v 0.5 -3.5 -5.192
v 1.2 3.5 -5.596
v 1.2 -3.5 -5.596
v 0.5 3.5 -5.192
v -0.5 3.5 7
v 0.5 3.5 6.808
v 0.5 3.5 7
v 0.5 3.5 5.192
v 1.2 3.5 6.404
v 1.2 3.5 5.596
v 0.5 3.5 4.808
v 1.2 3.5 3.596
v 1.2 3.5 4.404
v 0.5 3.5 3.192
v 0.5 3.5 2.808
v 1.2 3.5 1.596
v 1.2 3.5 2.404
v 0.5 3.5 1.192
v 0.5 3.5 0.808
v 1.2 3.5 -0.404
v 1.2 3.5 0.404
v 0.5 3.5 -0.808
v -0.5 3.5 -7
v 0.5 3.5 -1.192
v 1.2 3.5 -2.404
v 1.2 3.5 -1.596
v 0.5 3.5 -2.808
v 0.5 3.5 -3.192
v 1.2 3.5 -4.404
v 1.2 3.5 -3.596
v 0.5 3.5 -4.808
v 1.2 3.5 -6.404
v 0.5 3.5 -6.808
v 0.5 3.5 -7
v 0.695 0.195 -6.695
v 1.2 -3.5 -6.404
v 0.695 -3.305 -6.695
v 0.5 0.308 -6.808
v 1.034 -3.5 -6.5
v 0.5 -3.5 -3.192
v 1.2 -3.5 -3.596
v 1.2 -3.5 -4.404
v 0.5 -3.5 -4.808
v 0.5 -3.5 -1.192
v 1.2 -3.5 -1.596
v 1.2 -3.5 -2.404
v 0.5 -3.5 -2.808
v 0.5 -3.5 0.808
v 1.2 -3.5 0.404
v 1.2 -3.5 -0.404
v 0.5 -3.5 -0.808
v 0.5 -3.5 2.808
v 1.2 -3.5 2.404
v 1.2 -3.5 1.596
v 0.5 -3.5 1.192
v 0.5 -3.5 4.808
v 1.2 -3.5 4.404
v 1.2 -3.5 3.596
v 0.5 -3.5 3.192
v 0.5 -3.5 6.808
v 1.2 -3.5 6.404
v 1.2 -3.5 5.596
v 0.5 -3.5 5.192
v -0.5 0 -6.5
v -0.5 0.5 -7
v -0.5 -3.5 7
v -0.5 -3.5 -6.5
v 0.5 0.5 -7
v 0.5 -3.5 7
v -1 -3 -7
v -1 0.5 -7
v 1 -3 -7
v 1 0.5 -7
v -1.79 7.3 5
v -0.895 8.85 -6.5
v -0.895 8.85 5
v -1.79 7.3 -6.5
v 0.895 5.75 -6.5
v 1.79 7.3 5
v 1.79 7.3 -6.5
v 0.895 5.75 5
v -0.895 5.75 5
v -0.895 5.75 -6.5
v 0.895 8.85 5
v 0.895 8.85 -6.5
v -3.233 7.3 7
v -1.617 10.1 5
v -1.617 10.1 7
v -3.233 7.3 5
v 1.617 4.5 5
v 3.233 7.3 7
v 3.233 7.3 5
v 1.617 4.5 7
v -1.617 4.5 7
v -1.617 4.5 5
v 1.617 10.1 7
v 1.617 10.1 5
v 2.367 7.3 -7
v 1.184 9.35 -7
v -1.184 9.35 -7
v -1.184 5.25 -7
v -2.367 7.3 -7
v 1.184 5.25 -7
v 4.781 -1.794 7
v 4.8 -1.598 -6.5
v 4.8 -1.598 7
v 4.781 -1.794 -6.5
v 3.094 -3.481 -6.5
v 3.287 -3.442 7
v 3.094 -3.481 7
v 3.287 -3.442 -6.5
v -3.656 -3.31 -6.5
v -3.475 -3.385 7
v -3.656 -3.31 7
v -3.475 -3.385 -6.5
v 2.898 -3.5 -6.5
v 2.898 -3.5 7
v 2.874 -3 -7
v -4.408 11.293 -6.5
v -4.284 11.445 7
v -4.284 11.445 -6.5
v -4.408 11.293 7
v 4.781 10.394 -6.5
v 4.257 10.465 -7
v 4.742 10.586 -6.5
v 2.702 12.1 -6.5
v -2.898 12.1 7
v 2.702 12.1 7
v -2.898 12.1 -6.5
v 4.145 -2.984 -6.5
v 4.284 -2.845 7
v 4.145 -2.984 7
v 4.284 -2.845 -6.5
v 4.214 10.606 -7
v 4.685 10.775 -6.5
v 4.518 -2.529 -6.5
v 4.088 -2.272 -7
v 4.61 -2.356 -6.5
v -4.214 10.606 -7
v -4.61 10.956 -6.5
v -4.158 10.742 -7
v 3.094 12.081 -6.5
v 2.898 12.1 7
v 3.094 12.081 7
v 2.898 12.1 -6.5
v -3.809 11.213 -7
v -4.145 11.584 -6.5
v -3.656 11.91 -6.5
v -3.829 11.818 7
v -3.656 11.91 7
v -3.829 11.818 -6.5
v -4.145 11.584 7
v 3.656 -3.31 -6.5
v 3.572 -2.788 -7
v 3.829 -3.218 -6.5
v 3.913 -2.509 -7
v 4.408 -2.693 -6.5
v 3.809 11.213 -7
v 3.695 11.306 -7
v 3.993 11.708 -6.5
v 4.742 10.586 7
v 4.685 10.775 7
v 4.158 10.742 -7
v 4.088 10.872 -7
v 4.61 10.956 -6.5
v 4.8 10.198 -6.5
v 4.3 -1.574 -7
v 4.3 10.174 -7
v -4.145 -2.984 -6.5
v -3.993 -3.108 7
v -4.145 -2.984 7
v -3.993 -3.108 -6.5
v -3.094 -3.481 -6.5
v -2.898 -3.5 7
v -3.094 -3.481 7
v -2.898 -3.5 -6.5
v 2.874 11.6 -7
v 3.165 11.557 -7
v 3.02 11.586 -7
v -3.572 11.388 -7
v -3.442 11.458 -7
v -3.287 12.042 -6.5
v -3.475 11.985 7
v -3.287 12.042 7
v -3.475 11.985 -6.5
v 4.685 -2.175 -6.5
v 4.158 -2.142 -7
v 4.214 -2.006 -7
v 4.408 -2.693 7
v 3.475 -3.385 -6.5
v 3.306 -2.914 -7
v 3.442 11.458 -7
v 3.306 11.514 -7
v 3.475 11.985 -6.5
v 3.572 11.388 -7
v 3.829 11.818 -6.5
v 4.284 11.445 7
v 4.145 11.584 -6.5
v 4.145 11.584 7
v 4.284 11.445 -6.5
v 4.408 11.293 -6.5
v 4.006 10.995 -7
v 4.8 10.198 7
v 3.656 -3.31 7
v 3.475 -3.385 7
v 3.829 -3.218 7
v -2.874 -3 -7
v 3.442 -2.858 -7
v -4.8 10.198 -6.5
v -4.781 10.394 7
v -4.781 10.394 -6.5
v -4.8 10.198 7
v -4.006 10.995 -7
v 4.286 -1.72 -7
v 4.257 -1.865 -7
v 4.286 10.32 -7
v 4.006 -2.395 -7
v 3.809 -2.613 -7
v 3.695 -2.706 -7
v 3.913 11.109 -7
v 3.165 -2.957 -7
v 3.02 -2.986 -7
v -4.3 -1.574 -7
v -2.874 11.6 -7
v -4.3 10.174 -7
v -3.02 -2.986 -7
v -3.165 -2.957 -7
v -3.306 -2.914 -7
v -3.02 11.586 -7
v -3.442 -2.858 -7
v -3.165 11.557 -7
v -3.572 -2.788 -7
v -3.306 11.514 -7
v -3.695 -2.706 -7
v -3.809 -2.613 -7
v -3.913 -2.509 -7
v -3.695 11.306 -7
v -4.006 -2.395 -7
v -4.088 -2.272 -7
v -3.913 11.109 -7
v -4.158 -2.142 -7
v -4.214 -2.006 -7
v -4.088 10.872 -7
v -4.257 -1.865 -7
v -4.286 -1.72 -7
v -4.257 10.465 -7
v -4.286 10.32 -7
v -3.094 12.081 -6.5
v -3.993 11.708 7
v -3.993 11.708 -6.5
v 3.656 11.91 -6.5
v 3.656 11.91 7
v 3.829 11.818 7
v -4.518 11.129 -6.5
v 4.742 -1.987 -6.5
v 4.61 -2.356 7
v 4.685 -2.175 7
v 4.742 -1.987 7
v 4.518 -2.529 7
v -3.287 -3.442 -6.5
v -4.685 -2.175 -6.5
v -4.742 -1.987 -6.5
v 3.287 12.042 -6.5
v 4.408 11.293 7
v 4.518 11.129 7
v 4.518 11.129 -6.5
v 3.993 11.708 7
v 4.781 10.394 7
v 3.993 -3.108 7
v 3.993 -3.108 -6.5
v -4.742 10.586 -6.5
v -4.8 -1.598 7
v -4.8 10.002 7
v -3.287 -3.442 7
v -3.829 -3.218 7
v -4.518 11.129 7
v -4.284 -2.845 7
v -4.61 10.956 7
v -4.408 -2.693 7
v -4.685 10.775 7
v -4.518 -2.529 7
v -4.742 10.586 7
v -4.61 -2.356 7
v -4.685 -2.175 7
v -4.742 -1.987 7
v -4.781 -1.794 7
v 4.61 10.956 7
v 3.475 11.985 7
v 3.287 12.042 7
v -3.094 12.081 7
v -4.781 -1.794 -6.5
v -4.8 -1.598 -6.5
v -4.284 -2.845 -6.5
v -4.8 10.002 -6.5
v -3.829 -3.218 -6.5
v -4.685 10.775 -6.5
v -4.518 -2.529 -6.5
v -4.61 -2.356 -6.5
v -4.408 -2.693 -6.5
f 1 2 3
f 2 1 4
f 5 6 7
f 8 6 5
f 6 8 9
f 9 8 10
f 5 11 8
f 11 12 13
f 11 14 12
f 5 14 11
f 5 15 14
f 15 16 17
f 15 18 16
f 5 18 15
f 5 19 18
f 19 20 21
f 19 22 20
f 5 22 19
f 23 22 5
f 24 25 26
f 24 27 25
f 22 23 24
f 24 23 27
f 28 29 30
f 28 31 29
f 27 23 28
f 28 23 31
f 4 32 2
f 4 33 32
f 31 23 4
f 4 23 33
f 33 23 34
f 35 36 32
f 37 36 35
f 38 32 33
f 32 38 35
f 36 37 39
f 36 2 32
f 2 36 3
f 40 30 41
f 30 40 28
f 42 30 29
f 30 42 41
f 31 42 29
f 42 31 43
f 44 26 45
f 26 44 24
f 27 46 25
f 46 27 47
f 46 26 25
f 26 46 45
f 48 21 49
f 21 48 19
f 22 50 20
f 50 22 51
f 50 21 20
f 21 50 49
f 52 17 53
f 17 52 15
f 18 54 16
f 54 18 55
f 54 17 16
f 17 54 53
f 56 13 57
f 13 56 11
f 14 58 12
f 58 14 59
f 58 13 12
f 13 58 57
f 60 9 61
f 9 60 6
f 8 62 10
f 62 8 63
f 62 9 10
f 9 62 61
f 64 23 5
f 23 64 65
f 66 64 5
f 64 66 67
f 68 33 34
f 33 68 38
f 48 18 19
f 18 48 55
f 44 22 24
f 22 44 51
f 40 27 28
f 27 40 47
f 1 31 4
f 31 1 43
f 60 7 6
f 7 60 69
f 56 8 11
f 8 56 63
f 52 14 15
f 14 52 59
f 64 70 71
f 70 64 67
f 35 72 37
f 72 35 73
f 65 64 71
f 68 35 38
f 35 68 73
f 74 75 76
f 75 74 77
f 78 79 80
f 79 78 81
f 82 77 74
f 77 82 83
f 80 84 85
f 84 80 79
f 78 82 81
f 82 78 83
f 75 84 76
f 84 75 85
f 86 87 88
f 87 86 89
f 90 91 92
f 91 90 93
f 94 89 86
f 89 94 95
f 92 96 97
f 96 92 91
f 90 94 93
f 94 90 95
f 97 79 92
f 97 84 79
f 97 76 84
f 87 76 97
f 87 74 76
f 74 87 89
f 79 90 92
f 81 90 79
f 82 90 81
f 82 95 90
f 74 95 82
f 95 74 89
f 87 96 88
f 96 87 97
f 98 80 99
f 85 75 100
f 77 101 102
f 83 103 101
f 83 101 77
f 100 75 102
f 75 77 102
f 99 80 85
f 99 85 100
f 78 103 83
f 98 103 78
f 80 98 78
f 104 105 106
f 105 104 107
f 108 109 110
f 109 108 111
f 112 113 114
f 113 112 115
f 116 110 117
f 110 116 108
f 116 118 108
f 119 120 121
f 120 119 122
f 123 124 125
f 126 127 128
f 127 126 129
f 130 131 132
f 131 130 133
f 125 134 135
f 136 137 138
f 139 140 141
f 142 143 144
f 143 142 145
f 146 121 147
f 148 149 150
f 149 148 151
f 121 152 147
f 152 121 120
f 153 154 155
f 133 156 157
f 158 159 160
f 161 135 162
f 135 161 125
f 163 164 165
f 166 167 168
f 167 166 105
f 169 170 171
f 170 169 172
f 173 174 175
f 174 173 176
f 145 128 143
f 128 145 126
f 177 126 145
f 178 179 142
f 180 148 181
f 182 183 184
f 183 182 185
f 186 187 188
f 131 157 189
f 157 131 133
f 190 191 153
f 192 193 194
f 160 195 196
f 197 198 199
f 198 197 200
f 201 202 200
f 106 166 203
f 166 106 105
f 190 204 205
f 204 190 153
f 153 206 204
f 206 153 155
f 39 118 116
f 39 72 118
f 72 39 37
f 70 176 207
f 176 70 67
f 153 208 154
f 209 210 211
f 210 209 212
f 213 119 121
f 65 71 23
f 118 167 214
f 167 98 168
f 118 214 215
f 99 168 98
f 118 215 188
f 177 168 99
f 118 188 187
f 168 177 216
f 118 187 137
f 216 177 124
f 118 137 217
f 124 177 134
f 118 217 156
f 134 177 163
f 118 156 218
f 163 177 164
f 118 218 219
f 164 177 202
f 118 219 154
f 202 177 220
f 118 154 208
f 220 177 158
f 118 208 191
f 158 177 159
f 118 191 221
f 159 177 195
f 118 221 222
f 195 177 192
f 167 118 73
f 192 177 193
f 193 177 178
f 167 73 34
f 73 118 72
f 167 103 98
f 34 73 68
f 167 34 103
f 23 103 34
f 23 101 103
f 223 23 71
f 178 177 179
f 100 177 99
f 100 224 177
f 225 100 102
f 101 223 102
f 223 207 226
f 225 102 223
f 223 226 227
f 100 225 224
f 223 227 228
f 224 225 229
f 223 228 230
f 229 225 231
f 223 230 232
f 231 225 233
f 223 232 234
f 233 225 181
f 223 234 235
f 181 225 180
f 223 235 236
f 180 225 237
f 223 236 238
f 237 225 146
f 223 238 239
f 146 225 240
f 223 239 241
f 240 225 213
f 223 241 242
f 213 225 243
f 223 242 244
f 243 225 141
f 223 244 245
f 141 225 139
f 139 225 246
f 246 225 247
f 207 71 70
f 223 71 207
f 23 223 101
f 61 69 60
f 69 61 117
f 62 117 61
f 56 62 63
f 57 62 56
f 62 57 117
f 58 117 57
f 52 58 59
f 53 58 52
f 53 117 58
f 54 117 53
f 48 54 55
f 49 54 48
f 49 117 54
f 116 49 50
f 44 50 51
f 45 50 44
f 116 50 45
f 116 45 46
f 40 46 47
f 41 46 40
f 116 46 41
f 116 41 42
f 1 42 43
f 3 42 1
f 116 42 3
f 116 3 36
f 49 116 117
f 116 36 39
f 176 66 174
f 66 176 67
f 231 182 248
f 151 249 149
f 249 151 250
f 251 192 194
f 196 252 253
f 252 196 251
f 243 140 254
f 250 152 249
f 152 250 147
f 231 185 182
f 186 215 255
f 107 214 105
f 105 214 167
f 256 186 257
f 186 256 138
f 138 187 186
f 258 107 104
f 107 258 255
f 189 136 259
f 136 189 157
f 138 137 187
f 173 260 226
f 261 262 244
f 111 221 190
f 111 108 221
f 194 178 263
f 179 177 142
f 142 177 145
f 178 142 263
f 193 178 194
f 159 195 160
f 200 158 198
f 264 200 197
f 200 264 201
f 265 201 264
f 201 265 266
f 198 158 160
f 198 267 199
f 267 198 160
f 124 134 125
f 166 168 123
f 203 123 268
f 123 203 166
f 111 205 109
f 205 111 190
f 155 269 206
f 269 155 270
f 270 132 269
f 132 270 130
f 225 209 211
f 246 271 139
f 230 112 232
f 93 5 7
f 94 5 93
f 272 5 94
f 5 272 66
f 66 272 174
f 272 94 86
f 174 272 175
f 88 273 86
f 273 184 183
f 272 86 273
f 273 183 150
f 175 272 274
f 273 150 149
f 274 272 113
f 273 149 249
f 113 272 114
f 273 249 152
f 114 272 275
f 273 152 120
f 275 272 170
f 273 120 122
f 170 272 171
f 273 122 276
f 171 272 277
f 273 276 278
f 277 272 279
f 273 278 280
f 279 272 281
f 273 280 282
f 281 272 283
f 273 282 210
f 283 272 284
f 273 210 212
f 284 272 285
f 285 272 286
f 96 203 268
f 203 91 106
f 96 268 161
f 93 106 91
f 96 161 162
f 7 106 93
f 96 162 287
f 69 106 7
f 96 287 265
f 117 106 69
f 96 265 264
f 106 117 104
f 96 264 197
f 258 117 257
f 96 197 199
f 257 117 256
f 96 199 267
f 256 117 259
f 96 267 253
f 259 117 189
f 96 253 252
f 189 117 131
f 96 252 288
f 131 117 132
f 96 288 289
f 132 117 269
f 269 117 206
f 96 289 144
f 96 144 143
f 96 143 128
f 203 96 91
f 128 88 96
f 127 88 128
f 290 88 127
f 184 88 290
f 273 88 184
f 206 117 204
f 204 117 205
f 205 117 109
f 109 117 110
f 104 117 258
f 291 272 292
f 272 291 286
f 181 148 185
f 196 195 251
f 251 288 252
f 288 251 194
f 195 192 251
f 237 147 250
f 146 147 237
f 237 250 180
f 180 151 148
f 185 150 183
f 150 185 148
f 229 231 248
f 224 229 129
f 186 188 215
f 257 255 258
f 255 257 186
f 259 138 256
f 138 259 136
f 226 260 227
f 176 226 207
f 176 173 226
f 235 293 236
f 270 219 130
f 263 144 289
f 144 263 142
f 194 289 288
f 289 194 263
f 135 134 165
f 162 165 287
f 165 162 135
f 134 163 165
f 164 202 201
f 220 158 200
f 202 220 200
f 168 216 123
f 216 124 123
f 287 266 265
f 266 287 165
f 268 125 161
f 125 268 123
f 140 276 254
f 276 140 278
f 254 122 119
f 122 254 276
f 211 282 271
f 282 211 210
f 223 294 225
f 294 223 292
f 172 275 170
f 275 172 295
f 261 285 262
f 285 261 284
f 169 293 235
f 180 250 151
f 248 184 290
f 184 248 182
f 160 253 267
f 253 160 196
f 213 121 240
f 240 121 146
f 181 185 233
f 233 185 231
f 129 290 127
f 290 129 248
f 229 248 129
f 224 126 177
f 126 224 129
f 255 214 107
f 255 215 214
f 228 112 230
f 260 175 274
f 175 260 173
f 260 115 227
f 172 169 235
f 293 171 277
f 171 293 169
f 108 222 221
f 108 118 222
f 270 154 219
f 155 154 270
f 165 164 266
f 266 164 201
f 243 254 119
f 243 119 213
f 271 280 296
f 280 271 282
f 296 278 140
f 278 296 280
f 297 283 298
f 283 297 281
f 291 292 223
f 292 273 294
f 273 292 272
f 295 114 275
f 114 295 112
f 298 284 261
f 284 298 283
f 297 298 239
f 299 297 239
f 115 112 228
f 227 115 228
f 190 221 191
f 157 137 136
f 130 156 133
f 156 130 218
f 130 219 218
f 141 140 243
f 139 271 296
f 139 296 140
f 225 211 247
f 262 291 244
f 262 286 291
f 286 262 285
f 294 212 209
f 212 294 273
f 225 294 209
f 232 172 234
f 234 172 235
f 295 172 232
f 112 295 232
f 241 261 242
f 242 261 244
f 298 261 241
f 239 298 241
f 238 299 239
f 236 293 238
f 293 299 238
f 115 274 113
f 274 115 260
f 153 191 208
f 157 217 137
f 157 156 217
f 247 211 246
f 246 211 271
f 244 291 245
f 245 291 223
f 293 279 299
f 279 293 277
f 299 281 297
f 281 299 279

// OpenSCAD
// file: util.scad
function accurate_diam(diam,sides) = 1 / cos(180/sides) / 2 * diam;

module hole(diam,len,sides=8) {
  rotate([0,0,180/sides]) {
    cylinder(r=accurate_diam(diam,sides),h=len,center=true,$fn=sides);
  }
}

module debug_axes() {
  color("red") {
    translate([50,0,0]) cube([100,.2,.2],center=true);
    translate([0,50,0]) cube([.2,100,.2],center=true);
    translate([0,0,50]) cube([.2,.2,100],center=true);
  }
}
// main file
include <config.scad>;
//include <positions.scad>;
//include <boxcutter.scad>;
use <util.scad>;

belt_tooth_pitch   = 2;
num_teeth_to_clamp = 7;
belt_clamp_depth   = belt_width + m3_nut_diam + wall_thickness*1.5 + 1;
belt_clamp_width   = m3_nut_diam + wall_thickness*2;
belt_clamp_height  = num_teeth_to_clamp*belt_tooth_pitch;

dist_from_belt_center_to_tensioner_screw = belt_width/2 + 0.5 + wall_thickness/2 + m3_nut_diam/2;

echo("BELT CLAMP DIM:", belt_clamp_width, belt_clamp_depth,belt_clamp_height);

/*
gt2_overall_thickness   = 1.38;
gt2_tooth_depth         = 0.75;
gt2_non_tooth_thickness = gt2_overall_thickness - gt2_tooth_depth;
gt2_center_from_flat    = 0.254;
*/

module vertical_belt_clamp() {
  rounded_diam = 4;
  module body() {
    hull() {
      translate([0,-0.5-belt_width/2+belt_clamp_depth/2,0]) {
        for(x=[left,right]) {
          for(y=[front,rear]) {
            translate([(belt_clamp_width/2-rounded_diam/2)*x,(belt_clamp_depth/2-rounded_diam/2)*y,0.25]) {
              hole(rounded_diam,belt_clamp_height-0.5,resolution);
            }
            translate([(belt_clamp_width/2-rounded_diam/2)*x,(belt_clamp_depth/2-rounded_diam/2)*y,0]) {
              hole(rounded_diam-1,belt_clamp_height,resolution);
            }
          }
        }
      }
    }
  }

  module holes() {
    tooth_diam = 1.4;
    // belt teeth
    translate([0,0,0]) {
      % cube([belt_thickness,belt_width,belt_clamp_height+2],center=true);
      translate([0,-belt_width/2+0.5,0]) {
        cube([1,belt_width*2,40],center=true);

        for(i=[0:num_teeth_to_clamp]) {
          translate([belt_thickness/2,0,-belt_clamp_height/2+belt_tooth_pitch/2+belt_tooth_pitch*i]) {
            rotate([90,0,0]) {
              rotate([0,0,0]) {
                hole(tooth_diam,belt_width*2,6);
              }
            }
          }
        }
      }

      for(side=[bottom]) {
        translate([0,-belt_width,side*(belt_clamp_height/2+0.5)]) {
          hull() {
            cube([belt_thickness+1,belt_width*2+1,1],center=true);
            cube([belt_thickness,belt_width*2,2],center=true);
          }
        }
      }
    }

    //translate([0,wall_thickness+3.1/2+0.5,0]) {
    translate([0,dist_from_belt_center_to_tensioner_screw,0]) {
      rotate([0,0,90]) {
        hole(3.1,100,6);
        translate([0,0,belt_clamp_height/2]) {
          hole(m3_nut_diam,m3_nut_thickness,6);
        }

        translate([0,0,-belt_clamp_height/2-0.5]) {
          hull() {
            hole(3.1+1,1,6);
            hole(3.1,2,6);
          }
        }
      }
    }
  }

  difference() {
    body();
    holes();
  }
}

vertical_belt_clamp();
